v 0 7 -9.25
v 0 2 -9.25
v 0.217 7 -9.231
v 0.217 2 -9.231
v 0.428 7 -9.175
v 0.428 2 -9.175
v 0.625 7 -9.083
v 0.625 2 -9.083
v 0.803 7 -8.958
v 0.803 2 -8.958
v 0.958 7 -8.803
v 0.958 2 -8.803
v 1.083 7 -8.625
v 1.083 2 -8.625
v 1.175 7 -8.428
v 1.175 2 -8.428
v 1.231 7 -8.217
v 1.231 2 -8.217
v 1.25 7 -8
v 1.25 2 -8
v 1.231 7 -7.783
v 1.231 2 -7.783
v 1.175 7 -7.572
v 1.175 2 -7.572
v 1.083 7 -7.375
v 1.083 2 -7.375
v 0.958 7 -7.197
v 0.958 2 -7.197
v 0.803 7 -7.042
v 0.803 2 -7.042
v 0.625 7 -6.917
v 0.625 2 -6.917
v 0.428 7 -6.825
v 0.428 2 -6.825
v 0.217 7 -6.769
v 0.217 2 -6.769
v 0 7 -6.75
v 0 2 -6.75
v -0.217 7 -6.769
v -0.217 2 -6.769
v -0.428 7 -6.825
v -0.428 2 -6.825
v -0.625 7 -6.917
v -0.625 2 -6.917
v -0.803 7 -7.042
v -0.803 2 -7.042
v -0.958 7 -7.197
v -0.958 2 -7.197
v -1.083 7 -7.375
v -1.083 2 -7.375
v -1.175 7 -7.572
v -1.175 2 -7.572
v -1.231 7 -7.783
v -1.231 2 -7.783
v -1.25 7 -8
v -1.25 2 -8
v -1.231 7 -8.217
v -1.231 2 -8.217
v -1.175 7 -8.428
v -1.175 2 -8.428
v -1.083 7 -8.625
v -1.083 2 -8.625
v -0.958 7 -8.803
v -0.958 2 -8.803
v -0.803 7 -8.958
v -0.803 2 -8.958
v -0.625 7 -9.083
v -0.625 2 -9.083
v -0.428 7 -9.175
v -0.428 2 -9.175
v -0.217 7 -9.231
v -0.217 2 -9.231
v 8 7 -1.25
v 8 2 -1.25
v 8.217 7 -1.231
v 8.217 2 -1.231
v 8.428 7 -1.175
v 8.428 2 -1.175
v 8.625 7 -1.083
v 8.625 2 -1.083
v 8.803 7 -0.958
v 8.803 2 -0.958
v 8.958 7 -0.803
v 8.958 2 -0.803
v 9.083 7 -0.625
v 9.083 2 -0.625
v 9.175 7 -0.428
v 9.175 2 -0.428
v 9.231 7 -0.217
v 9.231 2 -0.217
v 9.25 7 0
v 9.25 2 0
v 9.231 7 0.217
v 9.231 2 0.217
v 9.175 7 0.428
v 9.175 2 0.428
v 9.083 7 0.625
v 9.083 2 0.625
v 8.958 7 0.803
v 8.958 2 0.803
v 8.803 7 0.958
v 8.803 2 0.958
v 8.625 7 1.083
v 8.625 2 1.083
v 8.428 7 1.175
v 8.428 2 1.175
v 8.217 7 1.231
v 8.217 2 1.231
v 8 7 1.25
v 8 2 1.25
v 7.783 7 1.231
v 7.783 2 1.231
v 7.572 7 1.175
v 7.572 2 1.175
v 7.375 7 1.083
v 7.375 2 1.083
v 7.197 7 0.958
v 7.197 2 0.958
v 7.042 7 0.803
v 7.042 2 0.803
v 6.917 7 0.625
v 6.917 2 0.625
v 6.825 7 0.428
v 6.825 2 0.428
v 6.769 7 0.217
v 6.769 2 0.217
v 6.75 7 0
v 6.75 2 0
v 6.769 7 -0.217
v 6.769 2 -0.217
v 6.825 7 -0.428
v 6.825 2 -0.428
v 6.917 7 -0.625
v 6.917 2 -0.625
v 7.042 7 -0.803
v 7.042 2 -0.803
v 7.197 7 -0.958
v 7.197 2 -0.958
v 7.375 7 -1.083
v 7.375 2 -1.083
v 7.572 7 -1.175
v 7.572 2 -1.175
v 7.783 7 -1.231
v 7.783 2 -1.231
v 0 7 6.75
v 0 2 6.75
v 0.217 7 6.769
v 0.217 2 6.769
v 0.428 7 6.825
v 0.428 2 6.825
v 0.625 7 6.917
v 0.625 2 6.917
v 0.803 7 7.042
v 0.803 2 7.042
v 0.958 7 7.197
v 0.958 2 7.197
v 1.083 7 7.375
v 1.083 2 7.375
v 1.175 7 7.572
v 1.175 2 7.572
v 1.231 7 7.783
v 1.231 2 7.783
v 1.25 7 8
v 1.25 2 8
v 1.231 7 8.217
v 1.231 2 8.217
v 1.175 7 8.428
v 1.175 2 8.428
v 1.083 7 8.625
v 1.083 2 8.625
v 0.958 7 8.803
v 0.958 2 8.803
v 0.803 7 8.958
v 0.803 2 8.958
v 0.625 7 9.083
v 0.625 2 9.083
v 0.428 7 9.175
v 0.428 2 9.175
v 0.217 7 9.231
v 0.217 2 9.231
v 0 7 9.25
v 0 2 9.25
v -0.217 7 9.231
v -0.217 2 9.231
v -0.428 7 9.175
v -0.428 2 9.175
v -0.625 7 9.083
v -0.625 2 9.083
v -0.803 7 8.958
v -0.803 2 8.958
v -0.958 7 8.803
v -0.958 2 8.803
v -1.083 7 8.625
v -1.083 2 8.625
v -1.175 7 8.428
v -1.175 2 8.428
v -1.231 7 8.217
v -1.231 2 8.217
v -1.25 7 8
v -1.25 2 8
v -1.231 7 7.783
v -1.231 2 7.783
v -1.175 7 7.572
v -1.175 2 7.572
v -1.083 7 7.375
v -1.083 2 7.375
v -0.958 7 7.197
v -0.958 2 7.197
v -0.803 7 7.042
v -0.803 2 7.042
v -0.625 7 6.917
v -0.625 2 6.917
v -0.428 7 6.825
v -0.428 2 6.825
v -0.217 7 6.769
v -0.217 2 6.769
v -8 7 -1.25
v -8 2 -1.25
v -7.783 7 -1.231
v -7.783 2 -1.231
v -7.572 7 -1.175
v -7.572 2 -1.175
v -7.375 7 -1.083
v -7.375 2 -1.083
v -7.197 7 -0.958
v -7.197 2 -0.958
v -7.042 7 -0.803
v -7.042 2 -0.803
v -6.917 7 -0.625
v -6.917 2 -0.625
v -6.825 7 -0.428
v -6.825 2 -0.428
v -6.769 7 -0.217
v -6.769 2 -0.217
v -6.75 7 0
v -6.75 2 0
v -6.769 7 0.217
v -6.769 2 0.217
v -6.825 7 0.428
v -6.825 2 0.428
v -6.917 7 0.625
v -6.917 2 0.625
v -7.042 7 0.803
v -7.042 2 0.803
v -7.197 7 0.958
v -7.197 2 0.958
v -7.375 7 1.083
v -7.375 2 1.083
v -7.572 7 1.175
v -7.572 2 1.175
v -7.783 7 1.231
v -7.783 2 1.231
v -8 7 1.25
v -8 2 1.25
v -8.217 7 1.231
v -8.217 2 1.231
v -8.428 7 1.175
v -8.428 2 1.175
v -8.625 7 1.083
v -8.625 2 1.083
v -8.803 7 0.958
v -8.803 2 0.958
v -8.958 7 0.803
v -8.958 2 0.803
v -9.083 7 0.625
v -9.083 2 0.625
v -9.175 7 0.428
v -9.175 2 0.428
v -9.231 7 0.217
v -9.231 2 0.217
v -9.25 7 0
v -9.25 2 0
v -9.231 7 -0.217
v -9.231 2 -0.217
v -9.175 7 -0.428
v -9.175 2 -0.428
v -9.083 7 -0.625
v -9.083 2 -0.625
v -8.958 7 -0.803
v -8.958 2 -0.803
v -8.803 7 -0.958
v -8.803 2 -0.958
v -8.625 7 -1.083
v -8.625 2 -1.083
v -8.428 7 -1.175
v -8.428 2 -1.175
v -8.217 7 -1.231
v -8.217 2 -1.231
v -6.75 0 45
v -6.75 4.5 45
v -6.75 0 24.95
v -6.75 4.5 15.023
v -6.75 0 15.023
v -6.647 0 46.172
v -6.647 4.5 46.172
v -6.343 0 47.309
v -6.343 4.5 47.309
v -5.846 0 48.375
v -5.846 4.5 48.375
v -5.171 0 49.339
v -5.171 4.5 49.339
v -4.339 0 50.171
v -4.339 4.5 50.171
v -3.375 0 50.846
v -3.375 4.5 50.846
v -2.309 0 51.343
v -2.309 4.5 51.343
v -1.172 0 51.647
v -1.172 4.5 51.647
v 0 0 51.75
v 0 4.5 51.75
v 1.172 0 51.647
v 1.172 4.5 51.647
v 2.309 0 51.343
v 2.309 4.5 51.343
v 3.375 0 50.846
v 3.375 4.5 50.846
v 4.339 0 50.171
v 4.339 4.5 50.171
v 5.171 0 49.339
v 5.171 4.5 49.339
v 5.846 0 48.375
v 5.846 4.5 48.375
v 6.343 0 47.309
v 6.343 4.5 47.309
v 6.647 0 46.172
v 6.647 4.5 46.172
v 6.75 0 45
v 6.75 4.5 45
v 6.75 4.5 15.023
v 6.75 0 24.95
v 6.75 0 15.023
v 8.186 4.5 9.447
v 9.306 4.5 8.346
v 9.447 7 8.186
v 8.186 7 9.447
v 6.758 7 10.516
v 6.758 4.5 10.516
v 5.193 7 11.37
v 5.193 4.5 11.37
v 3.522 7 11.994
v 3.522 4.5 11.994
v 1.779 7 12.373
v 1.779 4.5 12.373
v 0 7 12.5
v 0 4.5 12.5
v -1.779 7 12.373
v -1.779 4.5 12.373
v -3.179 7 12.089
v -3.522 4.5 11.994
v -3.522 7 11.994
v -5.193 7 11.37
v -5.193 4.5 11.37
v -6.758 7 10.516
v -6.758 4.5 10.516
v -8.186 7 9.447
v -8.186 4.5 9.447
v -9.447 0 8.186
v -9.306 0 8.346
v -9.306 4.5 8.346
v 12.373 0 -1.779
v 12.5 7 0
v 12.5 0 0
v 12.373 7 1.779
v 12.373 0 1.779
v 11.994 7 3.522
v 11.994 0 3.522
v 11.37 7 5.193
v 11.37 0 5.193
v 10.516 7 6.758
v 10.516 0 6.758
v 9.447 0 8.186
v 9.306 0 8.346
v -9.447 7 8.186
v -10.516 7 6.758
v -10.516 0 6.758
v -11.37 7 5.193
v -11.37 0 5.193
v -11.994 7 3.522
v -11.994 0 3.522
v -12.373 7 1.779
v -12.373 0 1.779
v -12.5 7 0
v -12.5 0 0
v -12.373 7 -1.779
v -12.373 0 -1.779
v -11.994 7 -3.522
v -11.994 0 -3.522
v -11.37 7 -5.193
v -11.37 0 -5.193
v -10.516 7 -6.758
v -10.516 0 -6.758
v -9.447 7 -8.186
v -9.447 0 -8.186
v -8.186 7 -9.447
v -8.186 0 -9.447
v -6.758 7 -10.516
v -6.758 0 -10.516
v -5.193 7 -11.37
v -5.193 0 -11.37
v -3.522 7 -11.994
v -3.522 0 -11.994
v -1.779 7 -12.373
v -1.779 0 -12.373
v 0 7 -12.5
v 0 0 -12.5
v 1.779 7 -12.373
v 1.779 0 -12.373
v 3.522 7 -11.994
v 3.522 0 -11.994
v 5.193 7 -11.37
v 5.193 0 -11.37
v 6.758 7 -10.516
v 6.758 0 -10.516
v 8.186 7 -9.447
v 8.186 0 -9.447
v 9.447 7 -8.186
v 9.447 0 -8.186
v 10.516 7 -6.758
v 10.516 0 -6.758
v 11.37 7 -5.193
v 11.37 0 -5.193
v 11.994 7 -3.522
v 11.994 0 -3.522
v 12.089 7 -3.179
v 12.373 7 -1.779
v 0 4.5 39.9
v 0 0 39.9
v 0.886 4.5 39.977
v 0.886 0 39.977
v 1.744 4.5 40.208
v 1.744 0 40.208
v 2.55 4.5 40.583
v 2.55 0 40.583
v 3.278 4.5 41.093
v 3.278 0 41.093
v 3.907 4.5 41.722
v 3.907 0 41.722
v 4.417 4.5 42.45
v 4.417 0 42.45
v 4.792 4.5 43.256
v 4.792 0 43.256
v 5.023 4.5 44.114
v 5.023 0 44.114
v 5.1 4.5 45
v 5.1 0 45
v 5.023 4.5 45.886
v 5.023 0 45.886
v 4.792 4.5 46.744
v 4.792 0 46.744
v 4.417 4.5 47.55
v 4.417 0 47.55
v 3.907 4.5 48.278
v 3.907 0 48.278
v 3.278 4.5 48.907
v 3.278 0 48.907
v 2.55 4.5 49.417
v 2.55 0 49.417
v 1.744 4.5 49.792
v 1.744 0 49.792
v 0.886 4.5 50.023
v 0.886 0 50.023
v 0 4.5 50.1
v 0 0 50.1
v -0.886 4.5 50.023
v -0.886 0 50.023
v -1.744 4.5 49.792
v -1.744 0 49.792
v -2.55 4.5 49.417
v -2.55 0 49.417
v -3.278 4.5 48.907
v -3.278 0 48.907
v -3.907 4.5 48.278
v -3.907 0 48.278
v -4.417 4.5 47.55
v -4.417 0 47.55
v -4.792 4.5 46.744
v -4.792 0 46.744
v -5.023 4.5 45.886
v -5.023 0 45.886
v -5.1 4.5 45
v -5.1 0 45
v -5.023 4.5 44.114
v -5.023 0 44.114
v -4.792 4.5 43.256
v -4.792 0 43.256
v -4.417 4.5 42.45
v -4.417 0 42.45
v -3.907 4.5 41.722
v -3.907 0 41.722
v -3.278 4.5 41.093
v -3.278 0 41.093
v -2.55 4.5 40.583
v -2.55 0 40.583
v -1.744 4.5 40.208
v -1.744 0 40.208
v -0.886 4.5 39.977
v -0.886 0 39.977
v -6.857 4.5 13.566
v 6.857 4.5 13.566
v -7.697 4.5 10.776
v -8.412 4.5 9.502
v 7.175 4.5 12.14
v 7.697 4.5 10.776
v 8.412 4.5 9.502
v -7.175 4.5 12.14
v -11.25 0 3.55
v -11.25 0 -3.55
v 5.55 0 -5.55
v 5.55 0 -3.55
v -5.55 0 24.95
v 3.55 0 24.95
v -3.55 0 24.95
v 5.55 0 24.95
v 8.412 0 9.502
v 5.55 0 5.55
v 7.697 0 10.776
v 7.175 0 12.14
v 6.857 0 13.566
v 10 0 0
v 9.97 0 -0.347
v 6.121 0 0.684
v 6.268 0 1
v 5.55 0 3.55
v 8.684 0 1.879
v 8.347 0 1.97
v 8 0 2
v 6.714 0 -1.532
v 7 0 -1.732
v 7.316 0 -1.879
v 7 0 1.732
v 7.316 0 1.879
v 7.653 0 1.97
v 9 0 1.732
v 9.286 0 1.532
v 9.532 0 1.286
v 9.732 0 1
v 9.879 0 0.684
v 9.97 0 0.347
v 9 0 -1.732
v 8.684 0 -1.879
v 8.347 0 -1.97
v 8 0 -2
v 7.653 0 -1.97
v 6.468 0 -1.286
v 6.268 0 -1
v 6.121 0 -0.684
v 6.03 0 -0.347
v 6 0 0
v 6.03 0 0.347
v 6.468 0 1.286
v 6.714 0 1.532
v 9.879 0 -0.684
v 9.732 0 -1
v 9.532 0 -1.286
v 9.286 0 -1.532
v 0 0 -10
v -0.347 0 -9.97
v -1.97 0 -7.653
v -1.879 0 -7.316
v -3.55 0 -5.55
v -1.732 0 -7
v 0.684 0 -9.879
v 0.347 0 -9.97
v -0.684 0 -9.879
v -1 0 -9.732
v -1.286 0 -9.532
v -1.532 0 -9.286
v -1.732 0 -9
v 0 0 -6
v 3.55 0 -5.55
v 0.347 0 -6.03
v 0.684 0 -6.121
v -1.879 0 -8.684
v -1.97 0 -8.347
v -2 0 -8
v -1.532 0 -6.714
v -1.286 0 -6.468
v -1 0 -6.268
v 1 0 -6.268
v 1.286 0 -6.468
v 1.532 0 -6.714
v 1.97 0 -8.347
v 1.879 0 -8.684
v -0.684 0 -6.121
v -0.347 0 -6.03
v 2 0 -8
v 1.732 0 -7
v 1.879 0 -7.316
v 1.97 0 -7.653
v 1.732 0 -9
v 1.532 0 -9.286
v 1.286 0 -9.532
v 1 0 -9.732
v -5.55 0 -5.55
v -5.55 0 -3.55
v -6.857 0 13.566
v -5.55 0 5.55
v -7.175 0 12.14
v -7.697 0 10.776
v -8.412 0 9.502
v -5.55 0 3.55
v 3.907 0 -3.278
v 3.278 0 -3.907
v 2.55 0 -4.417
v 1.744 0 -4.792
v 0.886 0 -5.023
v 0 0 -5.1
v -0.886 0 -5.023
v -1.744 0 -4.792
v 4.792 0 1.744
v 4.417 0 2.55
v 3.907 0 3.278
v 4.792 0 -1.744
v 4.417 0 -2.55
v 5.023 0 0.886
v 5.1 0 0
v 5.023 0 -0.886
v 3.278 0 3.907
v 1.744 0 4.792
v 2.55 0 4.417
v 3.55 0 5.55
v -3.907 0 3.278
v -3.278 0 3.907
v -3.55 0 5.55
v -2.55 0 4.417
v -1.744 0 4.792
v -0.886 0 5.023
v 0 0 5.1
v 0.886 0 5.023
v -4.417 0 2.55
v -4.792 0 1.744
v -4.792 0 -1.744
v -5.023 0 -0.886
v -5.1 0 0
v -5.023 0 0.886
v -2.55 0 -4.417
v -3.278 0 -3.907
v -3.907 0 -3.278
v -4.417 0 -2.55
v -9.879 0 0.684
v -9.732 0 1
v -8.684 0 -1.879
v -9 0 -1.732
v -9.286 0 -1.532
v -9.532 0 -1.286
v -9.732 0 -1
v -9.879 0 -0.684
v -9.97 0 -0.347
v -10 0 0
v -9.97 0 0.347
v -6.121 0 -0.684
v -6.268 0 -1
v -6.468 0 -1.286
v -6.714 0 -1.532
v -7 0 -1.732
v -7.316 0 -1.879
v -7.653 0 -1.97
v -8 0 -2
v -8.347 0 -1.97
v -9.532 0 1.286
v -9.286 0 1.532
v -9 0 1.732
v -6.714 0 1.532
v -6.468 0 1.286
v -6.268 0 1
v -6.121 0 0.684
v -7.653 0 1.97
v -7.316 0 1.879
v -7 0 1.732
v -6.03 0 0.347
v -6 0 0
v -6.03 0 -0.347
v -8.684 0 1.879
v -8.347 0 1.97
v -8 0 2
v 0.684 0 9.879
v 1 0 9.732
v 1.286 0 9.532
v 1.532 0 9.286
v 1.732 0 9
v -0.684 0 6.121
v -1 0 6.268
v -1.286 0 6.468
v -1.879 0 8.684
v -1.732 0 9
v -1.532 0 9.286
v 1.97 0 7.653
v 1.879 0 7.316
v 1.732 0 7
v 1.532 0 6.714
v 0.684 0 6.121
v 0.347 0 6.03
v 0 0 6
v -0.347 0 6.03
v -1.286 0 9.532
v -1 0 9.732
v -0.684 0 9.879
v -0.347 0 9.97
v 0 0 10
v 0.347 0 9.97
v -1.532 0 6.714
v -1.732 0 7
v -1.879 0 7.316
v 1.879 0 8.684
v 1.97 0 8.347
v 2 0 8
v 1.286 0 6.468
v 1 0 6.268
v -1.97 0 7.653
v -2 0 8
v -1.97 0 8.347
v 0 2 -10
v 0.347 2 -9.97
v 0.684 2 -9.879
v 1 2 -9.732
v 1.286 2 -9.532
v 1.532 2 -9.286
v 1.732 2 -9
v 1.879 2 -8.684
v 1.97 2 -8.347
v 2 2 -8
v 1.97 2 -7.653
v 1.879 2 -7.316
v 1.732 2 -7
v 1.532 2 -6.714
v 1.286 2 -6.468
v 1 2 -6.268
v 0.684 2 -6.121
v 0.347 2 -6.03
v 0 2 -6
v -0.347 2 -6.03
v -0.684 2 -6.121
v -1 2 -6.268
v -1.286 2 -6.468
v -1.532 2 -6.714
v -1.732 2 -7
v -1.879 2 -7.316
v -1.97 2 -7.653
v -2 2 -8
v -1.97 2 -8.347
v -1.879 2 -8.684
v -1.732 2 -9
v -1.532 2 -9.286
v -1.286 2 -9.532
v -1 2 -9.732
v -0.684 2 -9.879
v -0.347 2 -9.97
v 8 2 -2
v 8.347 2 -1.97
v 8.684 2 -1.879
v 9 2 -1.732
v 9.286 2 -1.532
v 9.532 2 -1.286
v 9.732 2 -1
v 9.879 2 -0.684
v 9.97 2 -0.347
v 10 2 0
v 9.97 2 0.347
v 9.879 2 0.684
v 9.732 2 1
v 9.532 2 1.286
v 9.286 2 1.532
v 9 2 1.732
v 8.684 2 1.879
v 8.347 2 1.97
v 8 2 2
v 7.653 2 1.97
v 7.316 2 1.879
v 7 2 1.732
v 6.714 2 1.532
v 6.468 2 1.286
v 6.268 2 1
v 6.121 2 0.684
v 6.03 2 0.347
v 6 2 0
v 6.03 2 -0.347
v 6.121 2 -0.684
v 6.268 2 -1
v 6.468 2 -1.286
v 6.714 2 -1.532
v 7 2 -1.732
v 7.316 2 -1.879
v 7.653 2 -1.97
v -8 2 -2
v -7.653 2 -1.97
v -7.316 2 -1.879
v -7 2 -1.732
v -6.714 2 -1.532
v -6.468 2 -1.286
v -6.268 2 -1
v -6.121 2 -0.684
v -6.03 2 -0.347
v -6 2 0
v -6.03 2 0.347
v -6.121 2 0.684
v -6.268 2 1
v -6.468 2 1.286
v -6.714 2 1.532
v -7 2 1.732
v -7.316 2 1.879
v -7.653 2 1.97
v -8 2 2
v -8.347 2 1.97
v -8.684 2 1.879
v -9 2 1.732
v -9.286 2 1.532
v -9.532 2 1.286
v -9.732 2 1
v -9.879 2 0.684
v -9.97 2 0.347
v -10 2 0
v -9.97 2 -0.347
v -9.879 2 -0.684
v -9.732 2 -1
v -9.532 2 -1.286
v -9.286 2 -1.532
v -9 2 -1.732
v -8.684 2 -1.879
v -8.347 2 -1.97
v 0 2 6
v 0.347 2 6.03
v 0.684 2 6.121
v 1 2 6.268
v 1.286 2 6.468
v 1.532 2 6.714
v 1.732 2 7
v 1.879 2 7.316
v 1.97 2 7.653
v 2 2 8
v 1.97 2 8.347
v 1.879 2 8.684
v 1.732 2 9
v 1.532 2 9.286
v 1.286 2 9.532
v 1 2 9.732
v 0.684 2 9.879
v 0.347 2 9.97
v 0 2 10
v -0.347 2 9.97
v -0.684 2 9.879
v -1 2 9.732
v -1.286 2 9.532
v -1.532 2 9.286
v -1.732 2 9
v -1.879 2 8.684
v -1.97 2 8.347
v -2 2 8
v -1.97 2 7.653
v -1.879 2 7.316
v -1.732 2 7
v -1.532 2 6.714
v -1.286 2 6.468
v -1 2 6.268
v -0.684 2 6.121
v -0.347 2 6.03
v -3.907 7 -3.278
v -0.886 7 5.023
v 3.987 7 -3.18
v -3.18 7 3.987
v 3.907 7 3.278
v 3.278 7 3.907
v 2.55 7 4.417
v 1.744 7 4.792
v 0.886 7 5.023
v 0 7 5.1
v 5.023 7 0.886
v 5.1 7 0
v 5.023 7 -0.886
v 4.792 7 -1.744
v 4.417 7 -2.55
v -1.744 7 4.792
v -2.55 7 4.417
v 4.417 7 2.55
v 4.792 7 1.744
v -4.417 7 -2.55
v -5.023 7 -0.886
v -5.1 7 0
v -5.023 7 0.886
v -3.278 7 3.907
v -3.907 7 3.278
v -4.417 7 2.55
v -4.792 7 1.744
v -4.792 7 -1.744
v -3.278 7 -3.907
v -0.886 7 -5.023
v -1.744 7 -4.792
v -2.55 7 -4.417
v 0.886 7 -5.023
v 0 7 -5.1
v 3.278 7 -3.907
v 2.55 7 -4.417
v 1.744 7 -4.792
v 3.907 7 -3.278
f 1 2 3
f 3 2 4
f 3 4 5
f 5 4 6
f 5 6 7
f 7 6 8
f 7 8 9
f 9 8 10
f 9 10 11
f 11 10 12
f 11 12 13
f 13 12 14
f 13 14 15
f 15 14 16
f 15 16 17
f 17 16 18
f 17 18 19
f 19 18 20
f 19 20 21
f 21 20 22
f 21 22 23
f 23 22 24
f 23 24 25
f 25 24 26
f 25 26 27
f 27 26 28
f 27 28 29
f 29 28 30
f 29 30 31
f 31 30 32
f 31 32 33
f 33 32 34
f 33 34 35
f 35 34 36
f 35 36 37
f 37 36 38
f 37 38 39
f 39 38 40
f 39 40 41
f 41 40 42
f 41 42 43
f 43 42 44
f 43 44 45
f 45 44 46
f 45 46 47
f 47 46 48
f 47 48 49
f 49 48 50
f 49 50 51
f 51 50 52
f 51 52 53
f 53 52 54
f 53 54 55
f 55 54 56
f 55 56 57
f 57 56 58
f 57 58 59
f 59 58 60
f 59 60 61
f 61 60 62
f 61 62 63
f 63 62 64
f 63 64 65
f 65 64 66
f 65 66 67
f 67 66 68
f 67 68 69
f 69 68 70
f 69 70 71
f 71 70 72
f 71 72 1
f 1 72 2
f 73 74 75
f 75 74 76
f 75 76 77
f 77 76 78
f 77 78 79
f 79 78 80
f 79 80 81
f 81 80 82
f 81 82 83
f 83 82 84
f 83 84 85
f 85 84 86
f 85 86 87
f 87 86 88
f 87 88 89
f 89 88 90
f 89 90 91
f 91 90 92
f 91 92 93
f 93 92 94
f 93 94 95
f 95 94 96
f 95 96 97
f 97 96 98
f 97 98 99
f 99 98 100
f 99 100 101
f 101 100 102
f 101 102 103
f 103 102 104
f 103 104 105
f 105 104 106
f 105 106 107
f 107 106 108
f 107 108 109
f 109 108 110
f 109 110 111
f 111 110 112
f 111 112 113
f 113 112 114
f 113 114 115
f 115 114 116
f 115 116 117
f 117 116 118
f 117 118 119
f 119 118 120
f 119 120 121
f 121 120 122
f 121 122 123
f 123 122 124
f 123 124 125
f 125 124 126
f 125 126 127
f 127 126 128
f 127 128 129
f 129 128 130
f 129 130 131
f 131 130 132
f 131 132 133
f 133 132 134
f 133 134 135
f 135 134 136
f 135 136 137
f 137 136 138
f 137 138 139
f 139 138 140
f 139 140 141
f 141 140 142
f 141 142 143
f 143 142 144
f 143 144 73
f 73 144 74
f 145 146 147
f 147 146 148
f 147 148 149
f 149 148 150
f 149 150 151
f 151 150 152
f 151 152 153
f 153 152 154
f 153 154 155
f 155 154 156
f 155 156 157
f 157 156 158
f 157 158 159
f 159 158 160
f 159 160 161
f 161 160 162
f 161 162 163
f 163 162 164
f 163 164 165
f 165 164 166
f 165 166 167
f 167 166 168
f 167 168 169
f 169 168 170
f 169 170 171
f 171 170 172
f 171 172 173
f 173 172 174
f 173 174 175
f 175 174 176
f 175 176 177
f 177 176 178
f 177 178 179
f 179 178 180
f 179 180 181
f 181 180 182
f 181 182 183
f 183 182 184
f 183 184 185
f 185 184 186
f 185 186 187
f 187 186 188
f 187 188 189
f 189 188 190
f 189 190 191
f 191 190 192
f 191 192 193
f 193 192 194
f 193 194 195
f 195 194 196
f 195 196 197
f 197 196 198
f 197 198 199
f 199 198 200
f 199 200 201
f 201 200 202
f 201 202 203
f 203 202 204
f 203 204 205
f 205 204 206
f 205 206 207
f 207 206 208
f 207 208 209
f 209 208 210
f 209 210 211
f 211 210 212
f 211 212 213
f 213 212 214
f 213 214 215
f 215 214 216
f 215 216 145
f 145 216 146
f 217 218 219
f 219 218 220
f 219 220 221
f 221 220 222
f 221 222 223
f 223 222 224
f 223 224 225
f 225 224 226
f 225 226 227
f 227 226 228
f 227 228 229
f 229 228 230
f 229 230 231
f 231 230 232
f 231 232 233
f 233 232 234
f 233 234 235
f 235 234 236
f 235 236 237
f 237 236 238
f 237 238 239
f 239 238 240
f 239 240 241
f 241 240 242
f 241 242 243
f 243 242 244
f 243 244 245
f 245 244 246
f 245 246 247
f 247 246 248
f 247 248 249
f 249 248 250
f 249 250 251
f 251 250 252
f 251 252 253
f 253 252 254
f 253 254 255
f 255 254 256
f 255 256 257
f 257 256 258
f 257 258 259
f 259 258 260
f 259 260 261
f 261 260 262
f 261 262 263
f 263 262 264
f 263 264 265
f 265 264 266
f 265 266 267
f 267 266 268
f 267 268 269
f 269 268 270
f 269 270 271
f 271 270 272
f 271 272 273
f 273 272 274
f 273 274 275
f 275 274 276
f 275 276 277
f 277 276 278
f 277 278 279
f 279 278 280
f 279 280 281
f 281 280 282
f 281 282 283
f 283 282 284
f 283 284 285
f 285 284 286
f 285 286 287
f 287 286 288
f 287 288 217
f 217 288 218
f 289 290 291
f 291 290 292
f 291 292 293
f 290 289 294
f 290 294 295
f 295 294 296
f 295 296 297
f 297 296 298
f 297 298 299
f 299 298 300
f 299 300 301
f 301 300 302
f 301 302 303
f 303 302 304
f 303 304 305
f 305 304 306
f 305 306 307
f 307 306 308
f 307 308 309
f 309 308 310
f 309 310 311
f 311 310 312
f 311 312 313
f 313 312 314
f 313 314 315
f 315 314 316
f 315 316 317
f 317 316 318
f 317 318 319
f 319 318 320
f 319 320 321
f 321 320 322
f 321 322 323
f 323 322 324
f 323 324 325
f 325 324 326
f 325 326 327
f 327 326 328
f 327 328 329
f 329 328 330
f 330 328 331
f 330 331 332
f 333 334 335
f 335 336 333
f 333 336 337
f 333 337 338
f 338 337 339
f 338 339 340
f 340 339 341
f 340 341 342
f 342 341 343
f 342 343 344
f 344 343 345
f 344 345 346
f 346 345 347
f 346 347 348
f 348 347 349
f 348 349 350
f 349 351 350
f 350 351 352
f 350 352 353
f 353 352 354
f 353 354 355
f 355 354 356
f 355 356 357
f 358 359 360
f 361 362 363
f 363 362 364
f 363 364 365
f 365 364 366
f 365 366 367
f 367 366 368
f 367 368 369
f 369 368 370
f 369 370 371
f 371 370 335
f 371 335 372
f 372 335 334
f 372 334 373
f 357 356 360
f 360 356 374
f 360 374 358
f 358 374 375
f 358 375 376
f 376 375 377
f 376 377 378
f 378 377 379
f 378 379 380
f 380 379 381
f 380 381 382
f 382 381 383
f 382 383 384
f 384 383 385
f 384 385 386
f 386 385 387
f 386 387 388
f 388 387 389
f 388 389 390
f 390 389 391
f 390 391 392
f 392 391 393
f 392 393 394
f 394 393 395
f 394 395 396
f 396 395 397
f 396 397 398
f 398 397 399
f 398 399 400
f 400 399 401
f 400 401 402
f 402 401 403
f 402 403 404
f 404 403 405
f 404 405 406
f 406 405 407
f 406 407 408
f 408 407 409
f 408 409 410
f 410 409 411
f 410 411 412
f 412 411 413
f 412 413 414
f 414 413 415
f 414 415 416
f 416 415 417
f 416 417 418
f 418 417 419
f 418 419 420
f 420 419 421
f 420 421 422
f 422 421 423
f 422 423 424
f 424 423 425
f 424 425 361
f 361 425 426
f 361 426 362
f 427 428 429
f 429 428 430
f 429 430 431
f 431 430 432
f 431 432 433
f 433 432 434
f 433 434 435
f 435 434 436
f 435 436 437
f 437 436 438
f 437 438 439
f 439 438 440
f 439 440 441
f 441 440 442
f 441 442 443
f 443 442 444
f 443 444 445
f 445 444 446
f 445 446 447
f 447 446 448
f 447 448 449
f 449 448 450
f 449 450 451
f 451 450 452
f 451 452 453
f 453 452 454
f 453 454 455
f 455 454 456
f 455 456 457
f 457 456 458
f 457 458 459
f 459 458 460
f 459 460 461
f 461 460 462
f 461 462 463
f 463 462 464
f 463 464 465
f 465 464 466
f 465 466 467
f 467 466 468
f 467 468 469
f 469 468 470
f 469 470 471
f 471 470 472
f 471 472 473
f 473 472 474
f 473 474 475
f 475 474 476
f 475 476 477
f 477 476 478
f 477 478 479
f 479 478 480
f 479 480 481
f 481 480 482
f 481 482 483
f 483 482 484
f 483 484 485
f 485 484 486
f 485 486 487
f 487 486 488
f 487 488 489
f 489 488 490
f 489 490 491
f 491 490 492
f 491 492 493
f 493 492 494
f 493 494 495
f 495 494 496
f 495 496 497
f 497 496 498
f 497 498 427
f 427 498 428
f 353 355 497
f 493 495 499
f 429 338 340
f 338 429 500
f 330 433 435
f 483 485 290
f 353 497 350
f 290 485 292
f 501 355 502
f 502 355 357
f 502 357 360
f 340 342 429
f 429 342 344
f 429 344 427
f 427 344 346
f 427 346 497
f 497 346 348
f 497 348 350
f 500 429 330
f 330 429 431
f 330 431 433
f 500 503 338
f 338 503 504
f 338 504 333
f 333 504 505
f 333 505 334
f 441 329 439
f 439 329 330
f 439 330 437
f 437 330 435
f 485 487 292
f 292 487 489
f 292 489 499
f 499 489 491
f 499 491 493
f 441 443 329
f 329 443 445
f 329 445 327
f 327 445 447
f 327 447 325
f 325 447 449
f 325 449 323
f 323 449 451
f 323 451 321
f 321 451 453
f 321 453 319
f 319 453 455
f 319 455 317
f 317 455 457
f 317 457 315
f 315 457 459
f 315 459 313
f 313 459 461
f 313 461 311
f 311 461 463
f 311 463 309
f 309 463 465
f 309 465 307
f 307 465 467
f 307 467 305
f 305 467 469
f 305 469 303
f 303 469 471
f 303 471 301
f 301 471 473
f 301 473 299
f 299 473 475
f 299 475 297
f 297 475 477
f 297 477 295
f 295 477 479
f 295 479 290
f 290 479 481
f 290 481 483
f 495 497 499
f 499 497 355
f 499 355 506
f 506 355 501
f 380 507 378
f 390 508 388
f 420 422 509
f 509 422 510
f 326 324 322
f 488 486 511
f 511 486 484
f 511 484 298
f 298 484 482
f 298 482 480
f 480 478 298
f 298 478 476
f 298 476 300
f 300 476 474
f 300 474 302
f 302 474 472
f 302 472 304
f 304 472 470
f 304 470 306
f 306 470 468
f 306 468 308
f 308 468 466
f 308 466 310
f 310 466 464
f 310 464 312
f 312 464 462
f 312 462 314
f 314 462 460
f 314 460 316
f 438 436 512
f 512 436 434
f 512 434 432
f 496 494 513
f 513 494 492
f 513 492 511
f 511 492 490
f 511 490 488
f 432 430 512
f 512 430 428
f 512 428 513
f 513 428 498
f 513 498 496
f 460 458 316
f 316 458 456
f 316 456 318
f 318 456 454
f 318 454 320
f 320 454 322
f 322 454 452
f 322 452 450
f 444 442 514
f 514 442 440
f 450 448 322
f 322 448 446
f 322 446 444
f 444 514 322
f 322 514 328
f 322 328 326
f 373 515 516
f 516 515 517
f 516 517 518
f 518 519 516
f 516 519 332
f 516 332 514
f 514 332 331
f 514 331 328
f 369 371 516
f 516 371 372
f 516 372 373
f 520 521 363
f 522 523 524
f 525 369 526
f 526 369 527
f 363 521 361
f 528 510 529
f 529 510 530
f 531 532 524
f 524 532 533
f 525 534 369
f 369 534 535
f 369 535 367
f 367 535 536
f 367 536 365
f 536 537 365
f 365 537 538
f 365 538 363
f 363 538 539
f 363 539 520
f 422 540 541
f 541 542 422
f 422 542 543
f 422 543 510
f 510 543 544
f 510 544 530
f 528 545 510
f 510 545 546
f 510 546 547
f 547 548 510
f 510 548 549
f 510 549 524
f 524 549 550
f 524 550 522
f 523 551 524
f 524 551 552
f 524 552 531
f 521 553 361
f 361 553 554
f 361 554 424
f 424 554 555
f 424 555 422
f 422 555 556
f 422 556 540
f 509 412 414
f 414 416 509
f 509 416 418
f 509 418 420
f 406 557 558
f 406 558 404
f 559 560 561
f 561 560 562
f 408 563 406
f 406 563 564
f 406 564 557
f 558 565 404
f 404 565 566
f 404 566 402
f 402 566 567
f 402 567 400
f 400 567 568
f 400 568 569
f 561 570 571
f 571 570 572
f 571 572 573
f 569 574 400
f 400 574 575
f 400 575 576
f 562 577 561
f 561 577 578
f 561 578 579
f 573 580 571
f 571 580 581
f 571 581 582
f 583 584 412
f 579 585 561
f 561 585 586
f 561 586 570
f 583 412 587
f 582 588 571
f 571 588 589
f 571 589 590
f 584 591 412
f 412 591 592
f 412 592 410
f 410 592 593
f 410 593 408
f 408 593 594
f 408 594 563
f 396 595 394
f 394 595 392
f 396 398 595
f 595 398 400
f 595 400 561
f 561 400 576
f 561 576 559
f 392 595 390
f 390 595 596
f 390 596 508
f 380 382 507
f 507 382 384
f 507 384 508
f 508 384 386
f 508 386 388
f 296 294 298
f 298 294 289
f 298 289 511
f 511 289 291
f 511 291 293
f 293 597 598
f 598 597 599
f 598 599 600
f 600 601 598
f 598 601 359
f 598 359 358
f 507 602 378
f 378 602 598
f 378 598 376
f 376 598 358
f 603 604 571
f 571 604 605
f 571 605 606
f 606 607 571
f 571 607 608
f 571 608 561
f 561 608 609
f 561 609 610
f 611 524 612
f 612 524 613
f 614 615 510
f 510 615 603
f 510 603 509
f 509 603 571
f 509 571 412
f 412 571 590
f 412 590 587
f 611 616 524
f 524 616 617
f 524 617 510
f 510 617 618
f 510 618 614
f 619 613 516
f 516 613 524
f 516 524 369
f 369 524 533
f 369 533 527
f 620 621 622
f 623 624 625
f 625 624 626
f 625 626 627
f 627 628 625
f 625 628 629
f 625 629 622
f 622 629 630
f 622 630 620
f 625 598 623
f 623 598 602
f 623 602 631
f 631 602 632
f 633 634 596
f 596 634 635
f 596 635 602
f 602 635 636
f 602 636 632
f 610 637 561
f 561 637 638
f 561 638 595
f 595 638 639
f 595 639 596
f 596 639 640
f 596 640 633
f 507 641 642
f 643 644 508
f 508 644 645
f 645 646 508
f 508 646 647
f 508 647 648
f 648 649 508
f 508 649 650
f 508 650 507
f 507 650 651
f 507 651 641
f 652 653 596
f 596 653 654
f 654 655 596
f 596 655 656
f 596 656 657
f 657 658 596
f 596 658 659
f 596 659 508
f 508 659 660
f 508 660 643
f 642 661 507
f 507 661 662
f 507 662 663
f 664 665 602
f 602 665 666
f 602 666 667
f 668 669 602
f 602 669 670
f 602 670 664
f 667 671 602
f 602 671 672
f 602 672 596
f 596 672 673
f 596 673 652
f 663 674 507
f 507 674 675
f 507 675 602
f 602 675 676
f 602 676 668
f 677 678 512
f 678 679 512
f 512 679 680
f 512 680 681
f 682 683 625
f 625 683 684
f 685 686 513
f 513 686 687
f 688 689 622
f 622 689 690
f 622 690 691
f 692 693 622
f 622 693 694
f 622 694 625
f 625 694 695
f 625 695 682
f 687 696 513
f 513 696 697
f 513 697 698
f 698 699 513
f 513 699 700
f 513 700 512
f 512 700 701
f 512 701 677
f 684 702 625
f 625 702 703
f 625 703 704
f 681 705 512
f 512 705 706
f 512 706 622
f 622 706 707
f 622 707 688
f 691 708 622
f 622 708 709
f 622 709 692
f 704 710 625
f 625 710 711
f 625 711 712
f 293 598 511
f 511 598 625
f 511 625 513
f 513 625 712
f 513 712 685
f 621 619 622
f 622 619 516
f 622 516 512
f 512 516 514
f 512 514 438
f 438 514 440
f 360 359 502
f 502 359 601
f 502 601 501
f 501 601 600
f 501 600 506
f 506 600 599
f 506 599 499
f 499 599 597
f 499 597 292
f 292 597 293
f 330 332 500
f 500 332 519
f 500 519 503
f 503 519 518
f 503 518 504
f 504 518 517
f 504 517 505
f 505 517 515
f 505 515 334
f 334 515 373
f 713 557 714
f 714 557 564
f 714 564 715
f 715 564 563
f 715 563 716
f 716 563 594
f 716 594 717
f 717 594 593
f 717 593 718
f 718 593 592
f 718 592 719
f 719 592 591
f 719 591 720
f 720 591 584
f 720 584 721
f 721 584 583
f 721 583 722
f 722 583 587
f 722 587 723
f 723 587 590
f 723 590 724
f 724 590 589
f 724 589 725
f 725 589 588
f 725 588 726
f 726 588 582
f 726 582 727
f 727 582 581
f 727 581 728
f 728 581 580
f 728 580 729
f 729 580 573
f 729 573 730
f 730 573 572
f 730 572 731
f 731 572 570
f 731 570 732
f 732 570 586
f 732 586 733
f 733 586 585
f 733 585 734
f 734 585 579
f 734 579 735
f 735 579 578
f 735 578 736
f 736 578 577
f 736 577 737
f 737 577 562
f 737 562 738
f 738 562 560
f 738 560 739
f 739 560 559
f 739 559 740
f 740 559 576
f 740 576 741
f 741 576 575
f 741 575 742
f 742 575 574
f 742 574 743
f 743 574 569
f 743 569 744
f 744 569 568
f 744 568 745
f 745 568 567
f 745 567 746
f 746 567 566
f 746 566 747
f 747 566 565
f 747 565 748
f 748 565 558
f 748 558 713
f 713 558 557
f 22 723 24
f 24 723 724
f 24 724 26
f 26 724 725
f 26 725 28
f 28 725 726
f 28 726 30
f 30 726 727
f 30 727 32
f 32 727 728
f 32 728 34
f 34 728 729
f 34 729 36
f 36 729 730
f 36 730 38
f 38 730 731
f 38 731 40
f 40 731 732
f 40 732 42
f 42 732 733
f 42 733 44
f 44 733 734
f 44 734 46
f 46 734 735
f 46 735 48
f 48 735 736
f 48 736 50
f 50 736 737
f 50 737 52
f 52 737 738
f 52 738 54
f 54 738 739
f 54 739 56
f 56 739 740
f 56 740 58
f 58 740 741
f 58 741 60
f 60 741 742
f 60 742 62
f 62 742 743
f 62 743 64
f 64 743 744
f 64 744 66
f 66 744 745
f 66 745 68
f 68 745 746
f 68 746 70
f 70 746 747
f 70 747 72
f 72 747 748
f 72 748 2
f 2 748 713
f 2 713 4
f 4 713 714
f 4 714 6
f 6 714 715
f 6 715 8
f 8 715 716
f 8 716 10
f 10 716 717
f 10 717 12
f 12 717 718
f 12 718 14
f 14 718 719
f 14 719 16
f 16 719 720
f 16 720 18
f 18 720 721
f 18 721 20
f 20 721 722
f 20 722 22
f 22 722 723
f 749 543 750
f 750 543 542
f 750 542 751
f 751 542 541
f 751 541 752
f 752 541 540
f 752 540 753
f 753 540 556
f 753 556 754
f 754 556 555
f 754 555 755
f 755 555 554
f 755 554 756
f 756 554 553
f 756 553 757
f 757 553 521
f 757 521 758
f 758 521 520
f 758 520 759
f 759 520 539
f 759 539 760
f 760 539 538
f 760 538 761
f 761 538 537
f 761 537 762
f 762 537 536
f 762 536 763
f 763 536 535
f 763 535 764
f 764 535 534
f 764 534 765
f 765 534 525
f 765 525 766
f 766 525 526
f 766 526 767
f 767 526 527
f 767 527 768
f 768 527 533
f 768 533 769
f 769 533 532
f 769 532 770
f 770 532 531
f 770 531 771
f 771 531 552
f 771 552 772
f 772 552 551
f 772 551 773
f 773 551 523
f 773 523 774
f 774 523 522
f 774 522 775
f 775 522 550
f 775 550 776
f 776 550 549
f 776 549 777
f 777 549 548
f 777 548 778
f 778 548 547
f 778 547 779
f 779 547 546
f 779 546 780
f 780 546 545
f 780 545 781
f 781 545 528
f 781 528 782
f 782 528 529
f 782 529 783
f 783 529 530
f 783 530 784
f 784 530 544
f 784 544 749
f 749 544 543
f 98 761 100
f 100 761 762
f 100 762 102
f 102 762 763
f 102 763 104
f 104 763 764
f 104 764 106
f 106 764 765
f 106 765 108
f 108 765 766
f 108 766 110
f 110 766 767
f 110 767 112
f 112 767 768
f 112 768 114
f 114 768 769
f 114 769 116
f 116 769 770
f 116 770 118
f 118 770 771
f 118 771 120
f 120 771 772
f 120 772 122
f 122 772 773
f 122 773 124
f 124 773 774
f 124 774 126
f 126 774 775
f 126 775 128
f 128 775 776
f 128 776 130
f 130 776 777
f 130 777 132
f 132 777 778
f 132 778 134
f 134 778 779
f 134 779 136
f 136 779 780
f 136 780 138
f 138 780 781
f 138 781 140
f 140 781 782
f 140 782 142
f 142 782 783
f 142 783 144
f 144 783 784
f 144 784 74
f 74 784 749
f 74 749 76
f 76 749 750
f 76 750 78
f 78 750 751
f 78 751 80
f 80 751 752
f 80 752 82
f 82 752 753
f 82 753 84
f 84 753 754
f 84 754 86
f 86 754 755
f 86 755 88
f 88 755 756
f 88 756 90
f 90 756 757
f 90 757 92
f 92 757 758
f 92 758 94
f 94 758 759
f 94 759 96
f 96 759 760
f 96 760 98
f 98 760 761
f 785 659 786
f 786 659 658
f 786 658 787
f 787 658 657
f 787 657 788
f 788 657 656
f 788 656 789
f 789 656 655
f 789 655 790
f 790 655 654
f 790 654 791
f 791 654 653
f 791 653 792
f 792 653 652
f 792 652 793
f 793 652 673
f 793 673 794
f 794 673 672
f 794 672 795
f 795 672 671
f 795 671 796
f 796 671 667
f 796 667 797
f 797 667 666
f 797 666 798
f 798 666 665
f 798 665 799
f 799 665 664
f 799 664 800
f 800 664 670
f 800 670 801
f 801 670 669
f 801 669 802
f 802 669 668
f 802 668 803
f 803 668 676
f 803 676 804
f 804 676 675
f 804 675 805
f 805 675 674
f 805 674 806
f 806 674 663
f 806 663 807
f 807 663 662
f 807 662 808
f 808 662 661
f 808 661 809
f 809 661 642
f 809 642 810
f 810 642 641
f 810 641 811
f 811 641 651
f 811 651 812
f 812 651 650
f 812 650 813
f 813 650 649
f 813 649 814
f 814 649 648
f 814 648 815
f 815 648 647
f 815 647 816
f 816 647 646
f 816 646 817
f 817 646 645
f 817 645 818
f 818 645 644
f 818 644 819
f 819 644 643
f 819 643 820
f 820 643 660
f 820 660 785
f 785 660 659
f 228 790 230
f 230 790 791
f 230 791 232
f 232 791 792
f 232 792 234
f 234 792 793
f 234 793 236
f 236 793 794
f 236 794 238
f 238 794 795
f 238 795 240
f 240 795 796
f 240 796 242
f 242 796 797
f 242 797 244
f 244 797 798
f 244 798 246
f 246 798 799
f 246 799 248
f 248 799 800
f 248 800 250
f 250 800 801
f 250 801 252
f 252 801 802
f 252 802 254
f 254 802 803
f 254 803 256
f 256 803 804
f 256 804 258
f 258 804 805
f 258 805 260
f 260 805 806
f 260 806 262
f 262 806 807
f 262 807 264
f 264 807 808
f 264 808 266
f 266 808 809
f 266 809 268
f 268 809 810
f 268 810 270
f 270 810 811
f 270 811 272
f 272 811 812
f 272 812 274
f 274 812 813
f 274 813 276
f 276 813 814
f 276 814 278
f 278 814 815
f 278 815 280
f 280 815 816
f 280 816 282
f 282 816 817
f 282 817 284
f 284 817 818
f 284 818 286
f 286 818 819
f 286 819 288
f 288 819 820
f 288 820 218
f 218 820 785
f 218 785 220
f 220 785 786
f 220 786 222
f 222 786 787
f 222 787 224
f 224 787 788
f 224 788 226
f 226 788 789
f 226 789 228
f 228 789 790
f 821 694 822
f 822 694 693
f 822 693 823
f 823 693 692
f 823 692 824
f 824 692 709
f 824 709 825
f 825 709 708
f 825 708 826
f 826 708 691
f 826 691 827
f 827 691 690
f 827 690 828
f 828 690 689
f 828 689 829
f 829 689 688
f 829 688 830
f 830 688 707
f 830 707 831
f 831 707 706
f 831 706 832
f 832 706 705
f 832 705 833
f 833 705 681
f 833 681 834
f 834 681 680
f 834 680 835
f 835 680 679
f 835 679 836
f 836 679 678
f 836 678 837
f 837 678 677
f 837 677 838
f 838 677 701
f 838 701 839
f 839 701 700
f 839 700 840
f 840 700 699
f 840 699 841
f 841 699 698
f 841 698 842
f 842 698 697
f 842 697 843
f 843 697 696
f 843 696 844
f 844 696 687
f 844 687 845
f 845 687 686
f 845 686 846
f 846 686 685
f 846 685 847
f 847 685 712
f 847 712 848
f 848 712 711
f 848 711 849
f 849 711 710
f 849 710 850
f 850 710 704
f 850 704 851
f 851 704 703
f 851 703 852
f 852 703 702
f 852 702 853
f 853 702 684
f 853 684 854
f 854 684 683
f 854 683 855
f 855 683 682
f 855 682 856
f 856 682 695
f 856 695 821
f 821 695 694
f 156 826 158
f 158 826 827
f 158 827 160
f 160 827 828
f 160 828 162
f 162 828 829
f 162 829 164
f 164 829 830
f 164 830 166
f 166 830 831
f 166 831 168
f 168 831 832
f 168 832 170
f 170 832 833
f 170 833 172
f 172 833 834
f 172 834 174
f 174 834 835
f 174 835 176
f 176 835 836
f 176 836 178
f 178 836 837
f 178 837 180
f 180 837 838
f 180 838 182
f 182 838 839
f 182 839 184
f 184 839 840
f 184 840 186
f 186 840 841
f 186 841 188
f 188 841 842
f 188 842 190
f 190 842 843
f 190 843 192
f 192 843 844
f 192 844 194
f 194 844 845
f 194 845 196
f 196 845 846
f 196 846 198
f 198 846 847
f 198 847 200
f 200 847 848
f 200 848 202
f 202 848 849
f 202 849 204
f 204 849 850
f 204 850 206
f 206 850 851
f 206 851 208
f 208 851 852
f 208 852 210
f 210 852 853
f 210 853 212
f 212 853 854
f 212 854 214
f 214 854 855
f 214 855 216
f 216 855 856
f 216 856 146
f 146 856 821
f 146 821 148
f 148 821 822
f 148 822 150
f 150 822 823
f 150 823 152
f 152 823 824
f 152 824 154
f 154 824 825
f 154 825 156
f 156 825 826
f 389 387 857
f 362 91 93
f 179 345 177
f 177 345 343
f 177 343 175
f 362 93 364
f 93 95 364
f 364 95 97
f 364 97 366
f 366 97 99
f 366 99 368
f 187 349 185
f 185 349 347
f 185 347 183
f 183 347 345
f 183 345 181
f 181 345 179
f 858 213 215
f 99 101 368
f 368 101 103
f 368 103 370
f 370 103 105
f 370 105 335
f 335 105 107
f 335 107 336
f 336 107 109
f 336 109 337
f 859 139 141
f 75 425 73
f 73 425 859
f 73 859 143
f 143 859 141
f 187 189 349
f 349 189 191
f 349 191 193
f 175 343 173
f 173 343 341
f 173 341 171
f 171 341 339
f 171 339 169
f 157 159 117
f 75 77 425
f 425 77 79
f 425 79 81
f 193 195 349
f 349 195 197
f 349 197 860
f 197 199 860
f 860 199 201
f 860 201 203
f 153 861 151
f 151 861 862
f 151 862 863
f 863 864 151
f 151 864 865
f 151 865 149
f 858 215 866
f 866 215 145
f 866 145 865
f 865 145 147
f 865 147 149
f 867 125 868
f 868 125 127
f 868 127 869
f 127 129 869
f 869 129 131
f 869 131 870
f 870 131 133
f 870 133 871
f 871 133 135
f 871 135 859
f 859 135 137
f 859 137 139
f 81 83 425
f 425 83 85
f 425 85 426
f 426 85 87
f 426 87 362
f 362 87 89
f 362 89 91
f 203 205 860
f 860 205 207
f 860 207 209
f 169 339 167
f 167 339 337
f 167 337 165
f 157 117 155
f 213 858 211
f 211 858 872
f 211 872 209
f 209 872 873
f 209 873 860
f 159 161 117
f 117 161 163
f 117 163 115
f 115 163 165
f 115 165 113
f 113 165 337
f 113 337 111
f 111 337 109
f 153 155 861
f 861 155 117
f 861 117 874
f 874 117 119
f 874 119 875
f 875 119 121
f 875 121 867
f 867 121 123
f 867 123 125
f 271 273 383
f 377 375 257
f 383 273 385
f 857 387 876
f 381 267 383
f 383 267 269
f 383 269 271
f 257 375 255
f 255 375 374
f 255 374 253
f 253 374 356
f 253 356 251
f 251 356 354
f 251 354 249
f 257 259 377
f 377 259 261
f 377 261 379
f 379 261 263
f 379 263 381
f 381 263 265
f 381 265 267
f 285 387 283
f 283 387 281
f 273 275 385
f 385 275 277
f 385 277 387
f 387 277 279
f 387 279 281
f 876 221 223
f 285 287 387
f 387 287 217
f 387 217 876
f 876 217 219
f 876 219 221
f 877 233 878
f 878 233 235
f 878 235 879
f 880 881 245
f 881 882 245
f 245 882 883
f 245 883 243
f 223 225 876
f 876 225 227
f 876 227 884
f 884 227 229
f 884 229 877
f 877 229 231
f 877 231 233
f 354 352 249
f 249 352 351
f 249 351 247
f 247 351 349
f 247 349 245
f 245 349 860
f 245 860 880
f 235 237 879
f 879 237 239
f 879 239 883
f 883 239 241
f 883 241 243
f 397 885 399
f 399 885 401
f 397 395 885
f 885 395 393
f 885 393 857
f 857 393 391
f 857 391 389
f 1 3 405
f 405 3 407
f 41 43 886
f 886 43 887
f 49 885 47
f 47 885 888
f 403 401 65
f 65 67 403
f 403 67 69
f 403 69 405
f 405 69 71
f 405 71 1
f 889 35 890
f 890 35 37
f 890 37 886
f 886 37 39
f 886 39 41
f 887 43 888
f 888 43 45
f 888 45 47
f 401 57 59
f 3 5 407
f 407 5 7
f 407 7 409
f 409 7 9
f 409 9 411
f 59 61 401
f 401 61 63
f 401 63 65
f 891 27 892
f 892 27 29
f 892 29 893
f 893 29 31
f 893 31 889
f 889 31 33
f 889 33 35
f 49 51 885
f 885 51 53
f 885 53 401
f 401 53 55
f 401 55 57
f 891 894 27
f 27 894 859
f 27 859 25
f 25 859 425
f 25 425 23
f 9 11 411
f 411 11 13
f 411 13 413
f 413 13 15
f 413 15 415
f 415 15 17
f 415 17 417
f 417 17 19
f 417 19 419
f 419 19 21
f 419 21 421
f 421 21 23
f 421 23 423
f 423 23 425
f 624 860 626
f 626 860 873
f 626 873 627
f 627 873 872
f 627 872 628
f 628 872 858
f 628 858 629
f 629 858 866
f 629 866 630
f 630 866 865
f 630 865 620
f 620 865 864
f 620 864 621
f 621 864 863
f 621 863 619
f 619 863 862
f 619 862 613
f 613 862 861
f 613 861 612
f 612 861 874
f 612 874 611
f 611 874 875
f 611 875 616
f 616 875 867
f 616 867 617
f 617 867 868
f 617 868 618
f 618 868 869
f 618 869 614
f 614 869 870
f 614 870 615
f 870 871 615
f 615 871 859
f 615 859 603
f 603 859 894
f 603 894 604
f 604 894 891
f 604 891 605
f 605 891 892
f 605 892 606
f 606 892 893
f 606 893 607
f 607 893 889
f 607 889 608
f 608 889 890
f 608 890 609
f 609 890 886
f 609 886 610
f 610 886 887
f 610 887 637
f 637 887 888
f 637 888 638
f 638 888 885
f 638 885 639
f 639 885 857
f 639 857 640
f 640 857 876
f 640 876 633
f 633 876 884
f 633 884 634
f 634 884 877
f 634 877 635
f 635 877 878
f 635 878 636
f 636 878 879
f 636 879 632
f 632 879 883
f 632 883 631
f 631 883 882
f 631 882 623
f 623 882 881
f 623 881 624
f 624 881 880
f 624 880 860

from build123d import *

# Parameters (mm, degrees)
SKETCH2_R           = 1.25
SKETCH2_R_2         = 5.1
BOSS_EXTRUDE2_DEPTH = 4.5
FILLET1_R           = 10
SKETCH4_R           = 2
CUT_EXTRUDE1_DEPTH  = 2
SKETCH5_R           = 12.5
SKETCH5_R_2         = 1.25
BOSS_EXTRUDE3_DEPTH = 2.5
SKETCH8_R           = 5.1
CUT_EXTRUDE5_DEPTH  = 10


with BuildPart() as part:
    # Sketch2 → Boss-Extrude2 (new body)
    with BuildSketch(Plane(origin=(0, 0, 0), x_dir=(1, 0, 0), z_dir=(0, 1, 0))):
        with BuildLine():
            Line((6.75, -45), (6.75, -10.520812706))
            ThreePointArc((6.75, -10.520812706), (0, 12.5), (-6.75, -10.520812706))
            Line((-6.75, -10.520812706), (-6.75, -45))
            ThreePointArc((-6.75, -45), (0, -51.75), (6.75, -45))
        make_face()
        with Locations((8, 0)):
            Circle(SKETCH2_R, mode=Mode.SUBTRACT)
        with Locations((0, -8)):
            Circle(SKETCH2_R, mode=Mode.SUBTRACT)
        with Locations((-8, 0)):
            Circle(SKETCH2_R, mode=Mode.SUBTRACT)
        with Locations((0, 8)):
            Circle(SKETCH2_R, mode=Mode.SUBTRACT)
        with Locations((0, -45)):
            Circle(SKETCH2_R_2, mode=Mode.SUBTRACT)
    extrude(amount=BOSS_EXTRUDE2_DEPTH)

    # Fillet1
    fillet1_edges = [part.edges().sort_by_distance(p)[0] for p in [
        (-6.75, 2.25, 10.520812706),
        (6.75, 2.25, 10.520812706),
    ]]
    fillet(fillet1_edges, radius=FILLET1_R)

    # Sketch4 → Cut-Extrude1 (cut)
    with BuildSketch(Plane.XZ):
        with Locations((0, 8)):
            Circle(SKETCH4_R)
        with Locations((-8, 0)):
            Circle(SKETCH4_R)
        with Locations((8, 0)):
            Circle(SKETCH4_R)
        with Locations((0, -8)):
            Circle(SKETCH4_R)
    extrude(amount=-CUT_EXTRUDE1_DEPTH, mode=Mode.SUBTRACT)

    # Sketch5 → Boss-Extrude3 (add)
    with BuildSketch(Plane(origin=(0, 4.5, 0), x_dir=(1, 0, 0), z_dir=(0, 1, 0))):
        Circle(SKETCH5_R)
        with Locations((8, 0)):
            Circle(SKETCH5_R_2, mode=Mode.SUBTRACT)
        with Locations((0, 8)):
            Circle(SKETCH5_R_2, mode=Mode.SUBTRACT)
        with Locations((-8, 0)):
            Circle(SKETCH5_R_2, mode=Mode.SUBTRACT)
        with Locations((0, -8)):
            Circle(SKETCH5_R_2, mode=Mode.SUBTRACT)
    extrude(amount=BOSS_EXTRUDE3_DEPTH)

    # Sketch8 → Cut-Extrude5 (cut)
    with BuildSketch(Plane.XZ):
        Circle(SKETCH8_R)
    extrude(amount=-CUT_EXTRUDE5_DEPTH, mode=Mode.SUBTRACT)


solid = part.part
